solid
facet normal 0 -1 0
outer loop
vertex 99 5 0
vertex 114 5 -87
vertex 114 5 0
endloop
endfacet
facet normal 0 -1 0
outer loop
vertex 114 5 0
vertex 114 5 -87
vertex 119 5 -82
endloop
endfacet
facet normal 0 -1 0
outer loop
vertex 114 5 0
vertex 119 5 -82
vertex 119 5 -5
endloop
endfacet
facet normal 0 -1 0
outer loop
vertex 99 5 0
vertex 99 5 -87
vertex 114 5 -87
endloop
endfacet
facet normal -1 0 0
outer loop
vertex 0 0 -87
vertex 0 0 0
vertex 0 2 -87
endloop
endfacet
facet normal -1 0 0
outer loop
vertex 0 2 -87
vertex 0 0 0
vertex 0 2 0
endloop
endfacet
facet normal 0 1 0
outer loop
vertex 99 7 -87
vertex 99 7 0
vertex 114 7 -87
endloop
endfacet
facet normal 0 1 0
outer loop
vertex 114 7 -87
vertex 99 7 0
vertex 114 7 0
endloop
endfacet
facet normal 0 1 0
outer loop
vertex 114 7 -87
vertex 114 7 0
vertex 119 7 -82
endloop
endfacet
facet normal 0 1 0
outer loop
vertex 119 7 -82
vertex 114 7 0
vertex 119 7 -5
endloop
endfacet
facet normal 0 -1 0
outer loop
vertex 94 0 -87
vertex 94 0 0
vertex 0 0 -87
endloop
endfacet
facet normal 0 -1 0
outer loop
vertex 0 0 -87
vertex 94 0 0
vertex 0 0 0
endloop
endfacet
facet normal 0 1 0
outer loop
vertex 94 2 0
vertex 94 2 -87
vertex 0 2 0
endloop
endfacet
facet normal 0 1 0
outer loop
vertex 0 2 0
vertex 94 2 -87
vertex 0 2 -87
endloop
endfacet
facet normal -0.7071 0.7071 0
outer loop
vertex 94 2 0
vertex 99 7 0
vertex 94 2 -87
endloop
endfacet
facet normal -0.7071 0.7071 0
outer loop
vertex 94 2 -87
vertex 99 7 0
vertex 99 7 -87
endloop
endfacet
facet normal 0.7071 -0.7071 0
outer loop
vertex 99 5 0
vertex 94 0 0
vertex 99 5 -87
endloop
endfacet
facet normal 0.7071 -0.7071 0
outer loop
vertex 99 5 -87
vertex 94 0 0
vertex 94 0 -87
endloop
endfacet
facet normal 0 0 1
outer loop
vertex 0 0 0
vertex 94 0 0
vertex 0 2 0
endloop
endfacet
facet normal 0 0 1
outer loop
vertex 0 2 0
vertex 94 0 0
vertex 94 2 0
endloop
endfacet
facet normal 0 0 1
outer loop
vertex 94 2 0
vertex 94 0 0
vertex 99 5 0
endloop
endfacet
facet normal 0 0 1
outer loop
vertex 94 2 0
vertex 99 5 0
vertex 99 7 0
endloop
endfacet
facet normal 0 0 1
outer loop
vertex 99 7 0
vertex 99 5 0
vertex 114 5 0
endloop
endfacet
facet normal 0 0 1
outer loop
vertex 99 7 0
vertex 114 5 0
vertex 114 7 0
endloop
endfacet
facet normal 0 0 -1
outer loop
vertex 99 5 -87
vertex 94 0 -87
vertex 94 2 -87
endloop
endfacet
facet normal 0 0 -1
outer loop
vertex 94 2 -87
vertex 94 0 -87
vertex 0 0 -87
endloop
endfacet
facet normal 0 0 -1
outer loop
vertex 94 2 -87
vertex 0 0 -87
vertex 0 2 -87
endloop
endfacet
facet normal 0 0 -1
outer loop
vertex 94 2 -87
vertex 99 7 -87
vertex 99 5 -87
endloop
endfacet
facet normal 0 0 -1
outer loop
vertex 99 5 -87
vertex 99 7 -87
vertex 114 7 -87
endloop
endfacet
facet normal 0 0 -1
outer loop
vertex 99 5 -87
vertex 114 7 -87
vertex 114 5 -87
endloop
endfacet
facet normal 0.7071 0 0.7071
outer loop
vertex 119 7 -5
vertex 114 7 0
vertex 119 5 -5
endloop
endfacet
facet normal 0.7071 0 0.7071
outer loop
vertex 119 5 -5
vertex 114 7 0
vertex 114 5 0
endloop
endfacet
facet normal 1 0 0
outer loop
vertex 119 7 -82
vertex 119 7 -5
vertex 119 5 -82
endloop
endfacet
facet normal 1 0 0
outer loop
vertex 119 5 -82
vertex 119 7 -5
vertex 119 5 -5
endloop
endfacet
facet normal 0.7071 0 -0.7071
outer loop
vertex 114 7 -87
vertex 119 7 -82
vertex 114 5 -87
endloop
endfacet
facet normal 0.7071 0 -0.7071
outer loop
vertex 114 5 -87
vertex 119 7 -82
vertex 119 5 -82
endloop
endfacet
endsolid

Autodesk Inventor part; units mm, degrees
ref_plane "YZ Plane" through (0, 0, 0) normal (1, 0, 0) x (0, 1, 0)
ref_plane "XZ Plane" through (0, 0, 0) normal (0, 1, 0) x (-1, 0, 0)
ref_plane "XY Plane" through (0, 0, 0) normal (0, 0, 1) x (1, 0, 0)
sketch "Sketch1" plane through (0, 0, 0) normal (0, 1, 0) x (-1, 0, 0)
  line L0 (0, 0) -> (-94, 0)
  line L1 (-94, 0) -> (-94, -87)
  line L2 (-94, -87) -> (0, -87)
  line L3 (0, -87) -> (0, 0)
  dimension "d0" = 94
  dimension "d1" = 87
extrude "Extrusion1" add sketch "Sketch1" along normal blind 2
sketch "Sketch2" plane through (0, 0, 0) normal (0, 0, 1) x (1, 0, 0)
  line L0 (94, 2) -> (0, 2) projected
  line L1 (-0.0001, 2) -> (94, 2)
  line L2 (94, 2) -> (99, 7)
  line L3 (94, 2) -> (101.071, 2) construction
  line L4 (94, 0) -> (99, 5)
  line L5 (99, 5) -> (114, 5)
  line L6 (114, 5) -> (114, 7)
  line L7 (114, 7) -> (99, 7)
  line L8 (94, 0) -> (94, 2) projected
  line L9 (94, 0) -> (94, 2)
  point P0 (0, 0)
  dimension "d4" = 7.071
  dimension "d5" = 45
  dimension "d6" = 7.071
  dimension "d7" = 15
  dimension "d8" = 2
extrude "Extrusion2" add sketch "Sketch2" against normal blind 87
sketch "Sketch3" plane through (99, 7, 0) normal (0, 1, 0) x (1, 0, 0)
  line L0 (15, 0) -> (0, 0) projected
  line L1 (15, 0) -> (20, 5)
  line L2 (15, 0) -> (22.071, 0) construction
  line L3 (20, 5) -> (20, 82)
  line L4 (0, 87) -> (15, 87) projected
  line L5 (20, 82) -> (15, 87)
  line L6 (15, 0) -> (15, 87)
  point P0 (-99, 0)
  dimension "d11" = 7.071
  dimension "d12" = 45
  dimension "d13" = 77
extrude "Extrusion3" add sketch "Sketch3" against normal blind 2
equation "\"BendRadius\" = Thickness"
equation "\"BendReliefWidth\" = Thickness"
equation "\"BendReliefDepth\" = 0.5 * Thickness"
equation "\"CornerReliefSize\" = 4 * Thickness"
equation "\"MinimumRemnant\" = 2 * Thickness"
equation "\"TransitionRadius\" = BendRadius"
equation "\"JacobiRadiusSize\" = BendRadius"
equation "\"GapSize\" = Thickness"
equation "\"Thickness\" = 0.5"
